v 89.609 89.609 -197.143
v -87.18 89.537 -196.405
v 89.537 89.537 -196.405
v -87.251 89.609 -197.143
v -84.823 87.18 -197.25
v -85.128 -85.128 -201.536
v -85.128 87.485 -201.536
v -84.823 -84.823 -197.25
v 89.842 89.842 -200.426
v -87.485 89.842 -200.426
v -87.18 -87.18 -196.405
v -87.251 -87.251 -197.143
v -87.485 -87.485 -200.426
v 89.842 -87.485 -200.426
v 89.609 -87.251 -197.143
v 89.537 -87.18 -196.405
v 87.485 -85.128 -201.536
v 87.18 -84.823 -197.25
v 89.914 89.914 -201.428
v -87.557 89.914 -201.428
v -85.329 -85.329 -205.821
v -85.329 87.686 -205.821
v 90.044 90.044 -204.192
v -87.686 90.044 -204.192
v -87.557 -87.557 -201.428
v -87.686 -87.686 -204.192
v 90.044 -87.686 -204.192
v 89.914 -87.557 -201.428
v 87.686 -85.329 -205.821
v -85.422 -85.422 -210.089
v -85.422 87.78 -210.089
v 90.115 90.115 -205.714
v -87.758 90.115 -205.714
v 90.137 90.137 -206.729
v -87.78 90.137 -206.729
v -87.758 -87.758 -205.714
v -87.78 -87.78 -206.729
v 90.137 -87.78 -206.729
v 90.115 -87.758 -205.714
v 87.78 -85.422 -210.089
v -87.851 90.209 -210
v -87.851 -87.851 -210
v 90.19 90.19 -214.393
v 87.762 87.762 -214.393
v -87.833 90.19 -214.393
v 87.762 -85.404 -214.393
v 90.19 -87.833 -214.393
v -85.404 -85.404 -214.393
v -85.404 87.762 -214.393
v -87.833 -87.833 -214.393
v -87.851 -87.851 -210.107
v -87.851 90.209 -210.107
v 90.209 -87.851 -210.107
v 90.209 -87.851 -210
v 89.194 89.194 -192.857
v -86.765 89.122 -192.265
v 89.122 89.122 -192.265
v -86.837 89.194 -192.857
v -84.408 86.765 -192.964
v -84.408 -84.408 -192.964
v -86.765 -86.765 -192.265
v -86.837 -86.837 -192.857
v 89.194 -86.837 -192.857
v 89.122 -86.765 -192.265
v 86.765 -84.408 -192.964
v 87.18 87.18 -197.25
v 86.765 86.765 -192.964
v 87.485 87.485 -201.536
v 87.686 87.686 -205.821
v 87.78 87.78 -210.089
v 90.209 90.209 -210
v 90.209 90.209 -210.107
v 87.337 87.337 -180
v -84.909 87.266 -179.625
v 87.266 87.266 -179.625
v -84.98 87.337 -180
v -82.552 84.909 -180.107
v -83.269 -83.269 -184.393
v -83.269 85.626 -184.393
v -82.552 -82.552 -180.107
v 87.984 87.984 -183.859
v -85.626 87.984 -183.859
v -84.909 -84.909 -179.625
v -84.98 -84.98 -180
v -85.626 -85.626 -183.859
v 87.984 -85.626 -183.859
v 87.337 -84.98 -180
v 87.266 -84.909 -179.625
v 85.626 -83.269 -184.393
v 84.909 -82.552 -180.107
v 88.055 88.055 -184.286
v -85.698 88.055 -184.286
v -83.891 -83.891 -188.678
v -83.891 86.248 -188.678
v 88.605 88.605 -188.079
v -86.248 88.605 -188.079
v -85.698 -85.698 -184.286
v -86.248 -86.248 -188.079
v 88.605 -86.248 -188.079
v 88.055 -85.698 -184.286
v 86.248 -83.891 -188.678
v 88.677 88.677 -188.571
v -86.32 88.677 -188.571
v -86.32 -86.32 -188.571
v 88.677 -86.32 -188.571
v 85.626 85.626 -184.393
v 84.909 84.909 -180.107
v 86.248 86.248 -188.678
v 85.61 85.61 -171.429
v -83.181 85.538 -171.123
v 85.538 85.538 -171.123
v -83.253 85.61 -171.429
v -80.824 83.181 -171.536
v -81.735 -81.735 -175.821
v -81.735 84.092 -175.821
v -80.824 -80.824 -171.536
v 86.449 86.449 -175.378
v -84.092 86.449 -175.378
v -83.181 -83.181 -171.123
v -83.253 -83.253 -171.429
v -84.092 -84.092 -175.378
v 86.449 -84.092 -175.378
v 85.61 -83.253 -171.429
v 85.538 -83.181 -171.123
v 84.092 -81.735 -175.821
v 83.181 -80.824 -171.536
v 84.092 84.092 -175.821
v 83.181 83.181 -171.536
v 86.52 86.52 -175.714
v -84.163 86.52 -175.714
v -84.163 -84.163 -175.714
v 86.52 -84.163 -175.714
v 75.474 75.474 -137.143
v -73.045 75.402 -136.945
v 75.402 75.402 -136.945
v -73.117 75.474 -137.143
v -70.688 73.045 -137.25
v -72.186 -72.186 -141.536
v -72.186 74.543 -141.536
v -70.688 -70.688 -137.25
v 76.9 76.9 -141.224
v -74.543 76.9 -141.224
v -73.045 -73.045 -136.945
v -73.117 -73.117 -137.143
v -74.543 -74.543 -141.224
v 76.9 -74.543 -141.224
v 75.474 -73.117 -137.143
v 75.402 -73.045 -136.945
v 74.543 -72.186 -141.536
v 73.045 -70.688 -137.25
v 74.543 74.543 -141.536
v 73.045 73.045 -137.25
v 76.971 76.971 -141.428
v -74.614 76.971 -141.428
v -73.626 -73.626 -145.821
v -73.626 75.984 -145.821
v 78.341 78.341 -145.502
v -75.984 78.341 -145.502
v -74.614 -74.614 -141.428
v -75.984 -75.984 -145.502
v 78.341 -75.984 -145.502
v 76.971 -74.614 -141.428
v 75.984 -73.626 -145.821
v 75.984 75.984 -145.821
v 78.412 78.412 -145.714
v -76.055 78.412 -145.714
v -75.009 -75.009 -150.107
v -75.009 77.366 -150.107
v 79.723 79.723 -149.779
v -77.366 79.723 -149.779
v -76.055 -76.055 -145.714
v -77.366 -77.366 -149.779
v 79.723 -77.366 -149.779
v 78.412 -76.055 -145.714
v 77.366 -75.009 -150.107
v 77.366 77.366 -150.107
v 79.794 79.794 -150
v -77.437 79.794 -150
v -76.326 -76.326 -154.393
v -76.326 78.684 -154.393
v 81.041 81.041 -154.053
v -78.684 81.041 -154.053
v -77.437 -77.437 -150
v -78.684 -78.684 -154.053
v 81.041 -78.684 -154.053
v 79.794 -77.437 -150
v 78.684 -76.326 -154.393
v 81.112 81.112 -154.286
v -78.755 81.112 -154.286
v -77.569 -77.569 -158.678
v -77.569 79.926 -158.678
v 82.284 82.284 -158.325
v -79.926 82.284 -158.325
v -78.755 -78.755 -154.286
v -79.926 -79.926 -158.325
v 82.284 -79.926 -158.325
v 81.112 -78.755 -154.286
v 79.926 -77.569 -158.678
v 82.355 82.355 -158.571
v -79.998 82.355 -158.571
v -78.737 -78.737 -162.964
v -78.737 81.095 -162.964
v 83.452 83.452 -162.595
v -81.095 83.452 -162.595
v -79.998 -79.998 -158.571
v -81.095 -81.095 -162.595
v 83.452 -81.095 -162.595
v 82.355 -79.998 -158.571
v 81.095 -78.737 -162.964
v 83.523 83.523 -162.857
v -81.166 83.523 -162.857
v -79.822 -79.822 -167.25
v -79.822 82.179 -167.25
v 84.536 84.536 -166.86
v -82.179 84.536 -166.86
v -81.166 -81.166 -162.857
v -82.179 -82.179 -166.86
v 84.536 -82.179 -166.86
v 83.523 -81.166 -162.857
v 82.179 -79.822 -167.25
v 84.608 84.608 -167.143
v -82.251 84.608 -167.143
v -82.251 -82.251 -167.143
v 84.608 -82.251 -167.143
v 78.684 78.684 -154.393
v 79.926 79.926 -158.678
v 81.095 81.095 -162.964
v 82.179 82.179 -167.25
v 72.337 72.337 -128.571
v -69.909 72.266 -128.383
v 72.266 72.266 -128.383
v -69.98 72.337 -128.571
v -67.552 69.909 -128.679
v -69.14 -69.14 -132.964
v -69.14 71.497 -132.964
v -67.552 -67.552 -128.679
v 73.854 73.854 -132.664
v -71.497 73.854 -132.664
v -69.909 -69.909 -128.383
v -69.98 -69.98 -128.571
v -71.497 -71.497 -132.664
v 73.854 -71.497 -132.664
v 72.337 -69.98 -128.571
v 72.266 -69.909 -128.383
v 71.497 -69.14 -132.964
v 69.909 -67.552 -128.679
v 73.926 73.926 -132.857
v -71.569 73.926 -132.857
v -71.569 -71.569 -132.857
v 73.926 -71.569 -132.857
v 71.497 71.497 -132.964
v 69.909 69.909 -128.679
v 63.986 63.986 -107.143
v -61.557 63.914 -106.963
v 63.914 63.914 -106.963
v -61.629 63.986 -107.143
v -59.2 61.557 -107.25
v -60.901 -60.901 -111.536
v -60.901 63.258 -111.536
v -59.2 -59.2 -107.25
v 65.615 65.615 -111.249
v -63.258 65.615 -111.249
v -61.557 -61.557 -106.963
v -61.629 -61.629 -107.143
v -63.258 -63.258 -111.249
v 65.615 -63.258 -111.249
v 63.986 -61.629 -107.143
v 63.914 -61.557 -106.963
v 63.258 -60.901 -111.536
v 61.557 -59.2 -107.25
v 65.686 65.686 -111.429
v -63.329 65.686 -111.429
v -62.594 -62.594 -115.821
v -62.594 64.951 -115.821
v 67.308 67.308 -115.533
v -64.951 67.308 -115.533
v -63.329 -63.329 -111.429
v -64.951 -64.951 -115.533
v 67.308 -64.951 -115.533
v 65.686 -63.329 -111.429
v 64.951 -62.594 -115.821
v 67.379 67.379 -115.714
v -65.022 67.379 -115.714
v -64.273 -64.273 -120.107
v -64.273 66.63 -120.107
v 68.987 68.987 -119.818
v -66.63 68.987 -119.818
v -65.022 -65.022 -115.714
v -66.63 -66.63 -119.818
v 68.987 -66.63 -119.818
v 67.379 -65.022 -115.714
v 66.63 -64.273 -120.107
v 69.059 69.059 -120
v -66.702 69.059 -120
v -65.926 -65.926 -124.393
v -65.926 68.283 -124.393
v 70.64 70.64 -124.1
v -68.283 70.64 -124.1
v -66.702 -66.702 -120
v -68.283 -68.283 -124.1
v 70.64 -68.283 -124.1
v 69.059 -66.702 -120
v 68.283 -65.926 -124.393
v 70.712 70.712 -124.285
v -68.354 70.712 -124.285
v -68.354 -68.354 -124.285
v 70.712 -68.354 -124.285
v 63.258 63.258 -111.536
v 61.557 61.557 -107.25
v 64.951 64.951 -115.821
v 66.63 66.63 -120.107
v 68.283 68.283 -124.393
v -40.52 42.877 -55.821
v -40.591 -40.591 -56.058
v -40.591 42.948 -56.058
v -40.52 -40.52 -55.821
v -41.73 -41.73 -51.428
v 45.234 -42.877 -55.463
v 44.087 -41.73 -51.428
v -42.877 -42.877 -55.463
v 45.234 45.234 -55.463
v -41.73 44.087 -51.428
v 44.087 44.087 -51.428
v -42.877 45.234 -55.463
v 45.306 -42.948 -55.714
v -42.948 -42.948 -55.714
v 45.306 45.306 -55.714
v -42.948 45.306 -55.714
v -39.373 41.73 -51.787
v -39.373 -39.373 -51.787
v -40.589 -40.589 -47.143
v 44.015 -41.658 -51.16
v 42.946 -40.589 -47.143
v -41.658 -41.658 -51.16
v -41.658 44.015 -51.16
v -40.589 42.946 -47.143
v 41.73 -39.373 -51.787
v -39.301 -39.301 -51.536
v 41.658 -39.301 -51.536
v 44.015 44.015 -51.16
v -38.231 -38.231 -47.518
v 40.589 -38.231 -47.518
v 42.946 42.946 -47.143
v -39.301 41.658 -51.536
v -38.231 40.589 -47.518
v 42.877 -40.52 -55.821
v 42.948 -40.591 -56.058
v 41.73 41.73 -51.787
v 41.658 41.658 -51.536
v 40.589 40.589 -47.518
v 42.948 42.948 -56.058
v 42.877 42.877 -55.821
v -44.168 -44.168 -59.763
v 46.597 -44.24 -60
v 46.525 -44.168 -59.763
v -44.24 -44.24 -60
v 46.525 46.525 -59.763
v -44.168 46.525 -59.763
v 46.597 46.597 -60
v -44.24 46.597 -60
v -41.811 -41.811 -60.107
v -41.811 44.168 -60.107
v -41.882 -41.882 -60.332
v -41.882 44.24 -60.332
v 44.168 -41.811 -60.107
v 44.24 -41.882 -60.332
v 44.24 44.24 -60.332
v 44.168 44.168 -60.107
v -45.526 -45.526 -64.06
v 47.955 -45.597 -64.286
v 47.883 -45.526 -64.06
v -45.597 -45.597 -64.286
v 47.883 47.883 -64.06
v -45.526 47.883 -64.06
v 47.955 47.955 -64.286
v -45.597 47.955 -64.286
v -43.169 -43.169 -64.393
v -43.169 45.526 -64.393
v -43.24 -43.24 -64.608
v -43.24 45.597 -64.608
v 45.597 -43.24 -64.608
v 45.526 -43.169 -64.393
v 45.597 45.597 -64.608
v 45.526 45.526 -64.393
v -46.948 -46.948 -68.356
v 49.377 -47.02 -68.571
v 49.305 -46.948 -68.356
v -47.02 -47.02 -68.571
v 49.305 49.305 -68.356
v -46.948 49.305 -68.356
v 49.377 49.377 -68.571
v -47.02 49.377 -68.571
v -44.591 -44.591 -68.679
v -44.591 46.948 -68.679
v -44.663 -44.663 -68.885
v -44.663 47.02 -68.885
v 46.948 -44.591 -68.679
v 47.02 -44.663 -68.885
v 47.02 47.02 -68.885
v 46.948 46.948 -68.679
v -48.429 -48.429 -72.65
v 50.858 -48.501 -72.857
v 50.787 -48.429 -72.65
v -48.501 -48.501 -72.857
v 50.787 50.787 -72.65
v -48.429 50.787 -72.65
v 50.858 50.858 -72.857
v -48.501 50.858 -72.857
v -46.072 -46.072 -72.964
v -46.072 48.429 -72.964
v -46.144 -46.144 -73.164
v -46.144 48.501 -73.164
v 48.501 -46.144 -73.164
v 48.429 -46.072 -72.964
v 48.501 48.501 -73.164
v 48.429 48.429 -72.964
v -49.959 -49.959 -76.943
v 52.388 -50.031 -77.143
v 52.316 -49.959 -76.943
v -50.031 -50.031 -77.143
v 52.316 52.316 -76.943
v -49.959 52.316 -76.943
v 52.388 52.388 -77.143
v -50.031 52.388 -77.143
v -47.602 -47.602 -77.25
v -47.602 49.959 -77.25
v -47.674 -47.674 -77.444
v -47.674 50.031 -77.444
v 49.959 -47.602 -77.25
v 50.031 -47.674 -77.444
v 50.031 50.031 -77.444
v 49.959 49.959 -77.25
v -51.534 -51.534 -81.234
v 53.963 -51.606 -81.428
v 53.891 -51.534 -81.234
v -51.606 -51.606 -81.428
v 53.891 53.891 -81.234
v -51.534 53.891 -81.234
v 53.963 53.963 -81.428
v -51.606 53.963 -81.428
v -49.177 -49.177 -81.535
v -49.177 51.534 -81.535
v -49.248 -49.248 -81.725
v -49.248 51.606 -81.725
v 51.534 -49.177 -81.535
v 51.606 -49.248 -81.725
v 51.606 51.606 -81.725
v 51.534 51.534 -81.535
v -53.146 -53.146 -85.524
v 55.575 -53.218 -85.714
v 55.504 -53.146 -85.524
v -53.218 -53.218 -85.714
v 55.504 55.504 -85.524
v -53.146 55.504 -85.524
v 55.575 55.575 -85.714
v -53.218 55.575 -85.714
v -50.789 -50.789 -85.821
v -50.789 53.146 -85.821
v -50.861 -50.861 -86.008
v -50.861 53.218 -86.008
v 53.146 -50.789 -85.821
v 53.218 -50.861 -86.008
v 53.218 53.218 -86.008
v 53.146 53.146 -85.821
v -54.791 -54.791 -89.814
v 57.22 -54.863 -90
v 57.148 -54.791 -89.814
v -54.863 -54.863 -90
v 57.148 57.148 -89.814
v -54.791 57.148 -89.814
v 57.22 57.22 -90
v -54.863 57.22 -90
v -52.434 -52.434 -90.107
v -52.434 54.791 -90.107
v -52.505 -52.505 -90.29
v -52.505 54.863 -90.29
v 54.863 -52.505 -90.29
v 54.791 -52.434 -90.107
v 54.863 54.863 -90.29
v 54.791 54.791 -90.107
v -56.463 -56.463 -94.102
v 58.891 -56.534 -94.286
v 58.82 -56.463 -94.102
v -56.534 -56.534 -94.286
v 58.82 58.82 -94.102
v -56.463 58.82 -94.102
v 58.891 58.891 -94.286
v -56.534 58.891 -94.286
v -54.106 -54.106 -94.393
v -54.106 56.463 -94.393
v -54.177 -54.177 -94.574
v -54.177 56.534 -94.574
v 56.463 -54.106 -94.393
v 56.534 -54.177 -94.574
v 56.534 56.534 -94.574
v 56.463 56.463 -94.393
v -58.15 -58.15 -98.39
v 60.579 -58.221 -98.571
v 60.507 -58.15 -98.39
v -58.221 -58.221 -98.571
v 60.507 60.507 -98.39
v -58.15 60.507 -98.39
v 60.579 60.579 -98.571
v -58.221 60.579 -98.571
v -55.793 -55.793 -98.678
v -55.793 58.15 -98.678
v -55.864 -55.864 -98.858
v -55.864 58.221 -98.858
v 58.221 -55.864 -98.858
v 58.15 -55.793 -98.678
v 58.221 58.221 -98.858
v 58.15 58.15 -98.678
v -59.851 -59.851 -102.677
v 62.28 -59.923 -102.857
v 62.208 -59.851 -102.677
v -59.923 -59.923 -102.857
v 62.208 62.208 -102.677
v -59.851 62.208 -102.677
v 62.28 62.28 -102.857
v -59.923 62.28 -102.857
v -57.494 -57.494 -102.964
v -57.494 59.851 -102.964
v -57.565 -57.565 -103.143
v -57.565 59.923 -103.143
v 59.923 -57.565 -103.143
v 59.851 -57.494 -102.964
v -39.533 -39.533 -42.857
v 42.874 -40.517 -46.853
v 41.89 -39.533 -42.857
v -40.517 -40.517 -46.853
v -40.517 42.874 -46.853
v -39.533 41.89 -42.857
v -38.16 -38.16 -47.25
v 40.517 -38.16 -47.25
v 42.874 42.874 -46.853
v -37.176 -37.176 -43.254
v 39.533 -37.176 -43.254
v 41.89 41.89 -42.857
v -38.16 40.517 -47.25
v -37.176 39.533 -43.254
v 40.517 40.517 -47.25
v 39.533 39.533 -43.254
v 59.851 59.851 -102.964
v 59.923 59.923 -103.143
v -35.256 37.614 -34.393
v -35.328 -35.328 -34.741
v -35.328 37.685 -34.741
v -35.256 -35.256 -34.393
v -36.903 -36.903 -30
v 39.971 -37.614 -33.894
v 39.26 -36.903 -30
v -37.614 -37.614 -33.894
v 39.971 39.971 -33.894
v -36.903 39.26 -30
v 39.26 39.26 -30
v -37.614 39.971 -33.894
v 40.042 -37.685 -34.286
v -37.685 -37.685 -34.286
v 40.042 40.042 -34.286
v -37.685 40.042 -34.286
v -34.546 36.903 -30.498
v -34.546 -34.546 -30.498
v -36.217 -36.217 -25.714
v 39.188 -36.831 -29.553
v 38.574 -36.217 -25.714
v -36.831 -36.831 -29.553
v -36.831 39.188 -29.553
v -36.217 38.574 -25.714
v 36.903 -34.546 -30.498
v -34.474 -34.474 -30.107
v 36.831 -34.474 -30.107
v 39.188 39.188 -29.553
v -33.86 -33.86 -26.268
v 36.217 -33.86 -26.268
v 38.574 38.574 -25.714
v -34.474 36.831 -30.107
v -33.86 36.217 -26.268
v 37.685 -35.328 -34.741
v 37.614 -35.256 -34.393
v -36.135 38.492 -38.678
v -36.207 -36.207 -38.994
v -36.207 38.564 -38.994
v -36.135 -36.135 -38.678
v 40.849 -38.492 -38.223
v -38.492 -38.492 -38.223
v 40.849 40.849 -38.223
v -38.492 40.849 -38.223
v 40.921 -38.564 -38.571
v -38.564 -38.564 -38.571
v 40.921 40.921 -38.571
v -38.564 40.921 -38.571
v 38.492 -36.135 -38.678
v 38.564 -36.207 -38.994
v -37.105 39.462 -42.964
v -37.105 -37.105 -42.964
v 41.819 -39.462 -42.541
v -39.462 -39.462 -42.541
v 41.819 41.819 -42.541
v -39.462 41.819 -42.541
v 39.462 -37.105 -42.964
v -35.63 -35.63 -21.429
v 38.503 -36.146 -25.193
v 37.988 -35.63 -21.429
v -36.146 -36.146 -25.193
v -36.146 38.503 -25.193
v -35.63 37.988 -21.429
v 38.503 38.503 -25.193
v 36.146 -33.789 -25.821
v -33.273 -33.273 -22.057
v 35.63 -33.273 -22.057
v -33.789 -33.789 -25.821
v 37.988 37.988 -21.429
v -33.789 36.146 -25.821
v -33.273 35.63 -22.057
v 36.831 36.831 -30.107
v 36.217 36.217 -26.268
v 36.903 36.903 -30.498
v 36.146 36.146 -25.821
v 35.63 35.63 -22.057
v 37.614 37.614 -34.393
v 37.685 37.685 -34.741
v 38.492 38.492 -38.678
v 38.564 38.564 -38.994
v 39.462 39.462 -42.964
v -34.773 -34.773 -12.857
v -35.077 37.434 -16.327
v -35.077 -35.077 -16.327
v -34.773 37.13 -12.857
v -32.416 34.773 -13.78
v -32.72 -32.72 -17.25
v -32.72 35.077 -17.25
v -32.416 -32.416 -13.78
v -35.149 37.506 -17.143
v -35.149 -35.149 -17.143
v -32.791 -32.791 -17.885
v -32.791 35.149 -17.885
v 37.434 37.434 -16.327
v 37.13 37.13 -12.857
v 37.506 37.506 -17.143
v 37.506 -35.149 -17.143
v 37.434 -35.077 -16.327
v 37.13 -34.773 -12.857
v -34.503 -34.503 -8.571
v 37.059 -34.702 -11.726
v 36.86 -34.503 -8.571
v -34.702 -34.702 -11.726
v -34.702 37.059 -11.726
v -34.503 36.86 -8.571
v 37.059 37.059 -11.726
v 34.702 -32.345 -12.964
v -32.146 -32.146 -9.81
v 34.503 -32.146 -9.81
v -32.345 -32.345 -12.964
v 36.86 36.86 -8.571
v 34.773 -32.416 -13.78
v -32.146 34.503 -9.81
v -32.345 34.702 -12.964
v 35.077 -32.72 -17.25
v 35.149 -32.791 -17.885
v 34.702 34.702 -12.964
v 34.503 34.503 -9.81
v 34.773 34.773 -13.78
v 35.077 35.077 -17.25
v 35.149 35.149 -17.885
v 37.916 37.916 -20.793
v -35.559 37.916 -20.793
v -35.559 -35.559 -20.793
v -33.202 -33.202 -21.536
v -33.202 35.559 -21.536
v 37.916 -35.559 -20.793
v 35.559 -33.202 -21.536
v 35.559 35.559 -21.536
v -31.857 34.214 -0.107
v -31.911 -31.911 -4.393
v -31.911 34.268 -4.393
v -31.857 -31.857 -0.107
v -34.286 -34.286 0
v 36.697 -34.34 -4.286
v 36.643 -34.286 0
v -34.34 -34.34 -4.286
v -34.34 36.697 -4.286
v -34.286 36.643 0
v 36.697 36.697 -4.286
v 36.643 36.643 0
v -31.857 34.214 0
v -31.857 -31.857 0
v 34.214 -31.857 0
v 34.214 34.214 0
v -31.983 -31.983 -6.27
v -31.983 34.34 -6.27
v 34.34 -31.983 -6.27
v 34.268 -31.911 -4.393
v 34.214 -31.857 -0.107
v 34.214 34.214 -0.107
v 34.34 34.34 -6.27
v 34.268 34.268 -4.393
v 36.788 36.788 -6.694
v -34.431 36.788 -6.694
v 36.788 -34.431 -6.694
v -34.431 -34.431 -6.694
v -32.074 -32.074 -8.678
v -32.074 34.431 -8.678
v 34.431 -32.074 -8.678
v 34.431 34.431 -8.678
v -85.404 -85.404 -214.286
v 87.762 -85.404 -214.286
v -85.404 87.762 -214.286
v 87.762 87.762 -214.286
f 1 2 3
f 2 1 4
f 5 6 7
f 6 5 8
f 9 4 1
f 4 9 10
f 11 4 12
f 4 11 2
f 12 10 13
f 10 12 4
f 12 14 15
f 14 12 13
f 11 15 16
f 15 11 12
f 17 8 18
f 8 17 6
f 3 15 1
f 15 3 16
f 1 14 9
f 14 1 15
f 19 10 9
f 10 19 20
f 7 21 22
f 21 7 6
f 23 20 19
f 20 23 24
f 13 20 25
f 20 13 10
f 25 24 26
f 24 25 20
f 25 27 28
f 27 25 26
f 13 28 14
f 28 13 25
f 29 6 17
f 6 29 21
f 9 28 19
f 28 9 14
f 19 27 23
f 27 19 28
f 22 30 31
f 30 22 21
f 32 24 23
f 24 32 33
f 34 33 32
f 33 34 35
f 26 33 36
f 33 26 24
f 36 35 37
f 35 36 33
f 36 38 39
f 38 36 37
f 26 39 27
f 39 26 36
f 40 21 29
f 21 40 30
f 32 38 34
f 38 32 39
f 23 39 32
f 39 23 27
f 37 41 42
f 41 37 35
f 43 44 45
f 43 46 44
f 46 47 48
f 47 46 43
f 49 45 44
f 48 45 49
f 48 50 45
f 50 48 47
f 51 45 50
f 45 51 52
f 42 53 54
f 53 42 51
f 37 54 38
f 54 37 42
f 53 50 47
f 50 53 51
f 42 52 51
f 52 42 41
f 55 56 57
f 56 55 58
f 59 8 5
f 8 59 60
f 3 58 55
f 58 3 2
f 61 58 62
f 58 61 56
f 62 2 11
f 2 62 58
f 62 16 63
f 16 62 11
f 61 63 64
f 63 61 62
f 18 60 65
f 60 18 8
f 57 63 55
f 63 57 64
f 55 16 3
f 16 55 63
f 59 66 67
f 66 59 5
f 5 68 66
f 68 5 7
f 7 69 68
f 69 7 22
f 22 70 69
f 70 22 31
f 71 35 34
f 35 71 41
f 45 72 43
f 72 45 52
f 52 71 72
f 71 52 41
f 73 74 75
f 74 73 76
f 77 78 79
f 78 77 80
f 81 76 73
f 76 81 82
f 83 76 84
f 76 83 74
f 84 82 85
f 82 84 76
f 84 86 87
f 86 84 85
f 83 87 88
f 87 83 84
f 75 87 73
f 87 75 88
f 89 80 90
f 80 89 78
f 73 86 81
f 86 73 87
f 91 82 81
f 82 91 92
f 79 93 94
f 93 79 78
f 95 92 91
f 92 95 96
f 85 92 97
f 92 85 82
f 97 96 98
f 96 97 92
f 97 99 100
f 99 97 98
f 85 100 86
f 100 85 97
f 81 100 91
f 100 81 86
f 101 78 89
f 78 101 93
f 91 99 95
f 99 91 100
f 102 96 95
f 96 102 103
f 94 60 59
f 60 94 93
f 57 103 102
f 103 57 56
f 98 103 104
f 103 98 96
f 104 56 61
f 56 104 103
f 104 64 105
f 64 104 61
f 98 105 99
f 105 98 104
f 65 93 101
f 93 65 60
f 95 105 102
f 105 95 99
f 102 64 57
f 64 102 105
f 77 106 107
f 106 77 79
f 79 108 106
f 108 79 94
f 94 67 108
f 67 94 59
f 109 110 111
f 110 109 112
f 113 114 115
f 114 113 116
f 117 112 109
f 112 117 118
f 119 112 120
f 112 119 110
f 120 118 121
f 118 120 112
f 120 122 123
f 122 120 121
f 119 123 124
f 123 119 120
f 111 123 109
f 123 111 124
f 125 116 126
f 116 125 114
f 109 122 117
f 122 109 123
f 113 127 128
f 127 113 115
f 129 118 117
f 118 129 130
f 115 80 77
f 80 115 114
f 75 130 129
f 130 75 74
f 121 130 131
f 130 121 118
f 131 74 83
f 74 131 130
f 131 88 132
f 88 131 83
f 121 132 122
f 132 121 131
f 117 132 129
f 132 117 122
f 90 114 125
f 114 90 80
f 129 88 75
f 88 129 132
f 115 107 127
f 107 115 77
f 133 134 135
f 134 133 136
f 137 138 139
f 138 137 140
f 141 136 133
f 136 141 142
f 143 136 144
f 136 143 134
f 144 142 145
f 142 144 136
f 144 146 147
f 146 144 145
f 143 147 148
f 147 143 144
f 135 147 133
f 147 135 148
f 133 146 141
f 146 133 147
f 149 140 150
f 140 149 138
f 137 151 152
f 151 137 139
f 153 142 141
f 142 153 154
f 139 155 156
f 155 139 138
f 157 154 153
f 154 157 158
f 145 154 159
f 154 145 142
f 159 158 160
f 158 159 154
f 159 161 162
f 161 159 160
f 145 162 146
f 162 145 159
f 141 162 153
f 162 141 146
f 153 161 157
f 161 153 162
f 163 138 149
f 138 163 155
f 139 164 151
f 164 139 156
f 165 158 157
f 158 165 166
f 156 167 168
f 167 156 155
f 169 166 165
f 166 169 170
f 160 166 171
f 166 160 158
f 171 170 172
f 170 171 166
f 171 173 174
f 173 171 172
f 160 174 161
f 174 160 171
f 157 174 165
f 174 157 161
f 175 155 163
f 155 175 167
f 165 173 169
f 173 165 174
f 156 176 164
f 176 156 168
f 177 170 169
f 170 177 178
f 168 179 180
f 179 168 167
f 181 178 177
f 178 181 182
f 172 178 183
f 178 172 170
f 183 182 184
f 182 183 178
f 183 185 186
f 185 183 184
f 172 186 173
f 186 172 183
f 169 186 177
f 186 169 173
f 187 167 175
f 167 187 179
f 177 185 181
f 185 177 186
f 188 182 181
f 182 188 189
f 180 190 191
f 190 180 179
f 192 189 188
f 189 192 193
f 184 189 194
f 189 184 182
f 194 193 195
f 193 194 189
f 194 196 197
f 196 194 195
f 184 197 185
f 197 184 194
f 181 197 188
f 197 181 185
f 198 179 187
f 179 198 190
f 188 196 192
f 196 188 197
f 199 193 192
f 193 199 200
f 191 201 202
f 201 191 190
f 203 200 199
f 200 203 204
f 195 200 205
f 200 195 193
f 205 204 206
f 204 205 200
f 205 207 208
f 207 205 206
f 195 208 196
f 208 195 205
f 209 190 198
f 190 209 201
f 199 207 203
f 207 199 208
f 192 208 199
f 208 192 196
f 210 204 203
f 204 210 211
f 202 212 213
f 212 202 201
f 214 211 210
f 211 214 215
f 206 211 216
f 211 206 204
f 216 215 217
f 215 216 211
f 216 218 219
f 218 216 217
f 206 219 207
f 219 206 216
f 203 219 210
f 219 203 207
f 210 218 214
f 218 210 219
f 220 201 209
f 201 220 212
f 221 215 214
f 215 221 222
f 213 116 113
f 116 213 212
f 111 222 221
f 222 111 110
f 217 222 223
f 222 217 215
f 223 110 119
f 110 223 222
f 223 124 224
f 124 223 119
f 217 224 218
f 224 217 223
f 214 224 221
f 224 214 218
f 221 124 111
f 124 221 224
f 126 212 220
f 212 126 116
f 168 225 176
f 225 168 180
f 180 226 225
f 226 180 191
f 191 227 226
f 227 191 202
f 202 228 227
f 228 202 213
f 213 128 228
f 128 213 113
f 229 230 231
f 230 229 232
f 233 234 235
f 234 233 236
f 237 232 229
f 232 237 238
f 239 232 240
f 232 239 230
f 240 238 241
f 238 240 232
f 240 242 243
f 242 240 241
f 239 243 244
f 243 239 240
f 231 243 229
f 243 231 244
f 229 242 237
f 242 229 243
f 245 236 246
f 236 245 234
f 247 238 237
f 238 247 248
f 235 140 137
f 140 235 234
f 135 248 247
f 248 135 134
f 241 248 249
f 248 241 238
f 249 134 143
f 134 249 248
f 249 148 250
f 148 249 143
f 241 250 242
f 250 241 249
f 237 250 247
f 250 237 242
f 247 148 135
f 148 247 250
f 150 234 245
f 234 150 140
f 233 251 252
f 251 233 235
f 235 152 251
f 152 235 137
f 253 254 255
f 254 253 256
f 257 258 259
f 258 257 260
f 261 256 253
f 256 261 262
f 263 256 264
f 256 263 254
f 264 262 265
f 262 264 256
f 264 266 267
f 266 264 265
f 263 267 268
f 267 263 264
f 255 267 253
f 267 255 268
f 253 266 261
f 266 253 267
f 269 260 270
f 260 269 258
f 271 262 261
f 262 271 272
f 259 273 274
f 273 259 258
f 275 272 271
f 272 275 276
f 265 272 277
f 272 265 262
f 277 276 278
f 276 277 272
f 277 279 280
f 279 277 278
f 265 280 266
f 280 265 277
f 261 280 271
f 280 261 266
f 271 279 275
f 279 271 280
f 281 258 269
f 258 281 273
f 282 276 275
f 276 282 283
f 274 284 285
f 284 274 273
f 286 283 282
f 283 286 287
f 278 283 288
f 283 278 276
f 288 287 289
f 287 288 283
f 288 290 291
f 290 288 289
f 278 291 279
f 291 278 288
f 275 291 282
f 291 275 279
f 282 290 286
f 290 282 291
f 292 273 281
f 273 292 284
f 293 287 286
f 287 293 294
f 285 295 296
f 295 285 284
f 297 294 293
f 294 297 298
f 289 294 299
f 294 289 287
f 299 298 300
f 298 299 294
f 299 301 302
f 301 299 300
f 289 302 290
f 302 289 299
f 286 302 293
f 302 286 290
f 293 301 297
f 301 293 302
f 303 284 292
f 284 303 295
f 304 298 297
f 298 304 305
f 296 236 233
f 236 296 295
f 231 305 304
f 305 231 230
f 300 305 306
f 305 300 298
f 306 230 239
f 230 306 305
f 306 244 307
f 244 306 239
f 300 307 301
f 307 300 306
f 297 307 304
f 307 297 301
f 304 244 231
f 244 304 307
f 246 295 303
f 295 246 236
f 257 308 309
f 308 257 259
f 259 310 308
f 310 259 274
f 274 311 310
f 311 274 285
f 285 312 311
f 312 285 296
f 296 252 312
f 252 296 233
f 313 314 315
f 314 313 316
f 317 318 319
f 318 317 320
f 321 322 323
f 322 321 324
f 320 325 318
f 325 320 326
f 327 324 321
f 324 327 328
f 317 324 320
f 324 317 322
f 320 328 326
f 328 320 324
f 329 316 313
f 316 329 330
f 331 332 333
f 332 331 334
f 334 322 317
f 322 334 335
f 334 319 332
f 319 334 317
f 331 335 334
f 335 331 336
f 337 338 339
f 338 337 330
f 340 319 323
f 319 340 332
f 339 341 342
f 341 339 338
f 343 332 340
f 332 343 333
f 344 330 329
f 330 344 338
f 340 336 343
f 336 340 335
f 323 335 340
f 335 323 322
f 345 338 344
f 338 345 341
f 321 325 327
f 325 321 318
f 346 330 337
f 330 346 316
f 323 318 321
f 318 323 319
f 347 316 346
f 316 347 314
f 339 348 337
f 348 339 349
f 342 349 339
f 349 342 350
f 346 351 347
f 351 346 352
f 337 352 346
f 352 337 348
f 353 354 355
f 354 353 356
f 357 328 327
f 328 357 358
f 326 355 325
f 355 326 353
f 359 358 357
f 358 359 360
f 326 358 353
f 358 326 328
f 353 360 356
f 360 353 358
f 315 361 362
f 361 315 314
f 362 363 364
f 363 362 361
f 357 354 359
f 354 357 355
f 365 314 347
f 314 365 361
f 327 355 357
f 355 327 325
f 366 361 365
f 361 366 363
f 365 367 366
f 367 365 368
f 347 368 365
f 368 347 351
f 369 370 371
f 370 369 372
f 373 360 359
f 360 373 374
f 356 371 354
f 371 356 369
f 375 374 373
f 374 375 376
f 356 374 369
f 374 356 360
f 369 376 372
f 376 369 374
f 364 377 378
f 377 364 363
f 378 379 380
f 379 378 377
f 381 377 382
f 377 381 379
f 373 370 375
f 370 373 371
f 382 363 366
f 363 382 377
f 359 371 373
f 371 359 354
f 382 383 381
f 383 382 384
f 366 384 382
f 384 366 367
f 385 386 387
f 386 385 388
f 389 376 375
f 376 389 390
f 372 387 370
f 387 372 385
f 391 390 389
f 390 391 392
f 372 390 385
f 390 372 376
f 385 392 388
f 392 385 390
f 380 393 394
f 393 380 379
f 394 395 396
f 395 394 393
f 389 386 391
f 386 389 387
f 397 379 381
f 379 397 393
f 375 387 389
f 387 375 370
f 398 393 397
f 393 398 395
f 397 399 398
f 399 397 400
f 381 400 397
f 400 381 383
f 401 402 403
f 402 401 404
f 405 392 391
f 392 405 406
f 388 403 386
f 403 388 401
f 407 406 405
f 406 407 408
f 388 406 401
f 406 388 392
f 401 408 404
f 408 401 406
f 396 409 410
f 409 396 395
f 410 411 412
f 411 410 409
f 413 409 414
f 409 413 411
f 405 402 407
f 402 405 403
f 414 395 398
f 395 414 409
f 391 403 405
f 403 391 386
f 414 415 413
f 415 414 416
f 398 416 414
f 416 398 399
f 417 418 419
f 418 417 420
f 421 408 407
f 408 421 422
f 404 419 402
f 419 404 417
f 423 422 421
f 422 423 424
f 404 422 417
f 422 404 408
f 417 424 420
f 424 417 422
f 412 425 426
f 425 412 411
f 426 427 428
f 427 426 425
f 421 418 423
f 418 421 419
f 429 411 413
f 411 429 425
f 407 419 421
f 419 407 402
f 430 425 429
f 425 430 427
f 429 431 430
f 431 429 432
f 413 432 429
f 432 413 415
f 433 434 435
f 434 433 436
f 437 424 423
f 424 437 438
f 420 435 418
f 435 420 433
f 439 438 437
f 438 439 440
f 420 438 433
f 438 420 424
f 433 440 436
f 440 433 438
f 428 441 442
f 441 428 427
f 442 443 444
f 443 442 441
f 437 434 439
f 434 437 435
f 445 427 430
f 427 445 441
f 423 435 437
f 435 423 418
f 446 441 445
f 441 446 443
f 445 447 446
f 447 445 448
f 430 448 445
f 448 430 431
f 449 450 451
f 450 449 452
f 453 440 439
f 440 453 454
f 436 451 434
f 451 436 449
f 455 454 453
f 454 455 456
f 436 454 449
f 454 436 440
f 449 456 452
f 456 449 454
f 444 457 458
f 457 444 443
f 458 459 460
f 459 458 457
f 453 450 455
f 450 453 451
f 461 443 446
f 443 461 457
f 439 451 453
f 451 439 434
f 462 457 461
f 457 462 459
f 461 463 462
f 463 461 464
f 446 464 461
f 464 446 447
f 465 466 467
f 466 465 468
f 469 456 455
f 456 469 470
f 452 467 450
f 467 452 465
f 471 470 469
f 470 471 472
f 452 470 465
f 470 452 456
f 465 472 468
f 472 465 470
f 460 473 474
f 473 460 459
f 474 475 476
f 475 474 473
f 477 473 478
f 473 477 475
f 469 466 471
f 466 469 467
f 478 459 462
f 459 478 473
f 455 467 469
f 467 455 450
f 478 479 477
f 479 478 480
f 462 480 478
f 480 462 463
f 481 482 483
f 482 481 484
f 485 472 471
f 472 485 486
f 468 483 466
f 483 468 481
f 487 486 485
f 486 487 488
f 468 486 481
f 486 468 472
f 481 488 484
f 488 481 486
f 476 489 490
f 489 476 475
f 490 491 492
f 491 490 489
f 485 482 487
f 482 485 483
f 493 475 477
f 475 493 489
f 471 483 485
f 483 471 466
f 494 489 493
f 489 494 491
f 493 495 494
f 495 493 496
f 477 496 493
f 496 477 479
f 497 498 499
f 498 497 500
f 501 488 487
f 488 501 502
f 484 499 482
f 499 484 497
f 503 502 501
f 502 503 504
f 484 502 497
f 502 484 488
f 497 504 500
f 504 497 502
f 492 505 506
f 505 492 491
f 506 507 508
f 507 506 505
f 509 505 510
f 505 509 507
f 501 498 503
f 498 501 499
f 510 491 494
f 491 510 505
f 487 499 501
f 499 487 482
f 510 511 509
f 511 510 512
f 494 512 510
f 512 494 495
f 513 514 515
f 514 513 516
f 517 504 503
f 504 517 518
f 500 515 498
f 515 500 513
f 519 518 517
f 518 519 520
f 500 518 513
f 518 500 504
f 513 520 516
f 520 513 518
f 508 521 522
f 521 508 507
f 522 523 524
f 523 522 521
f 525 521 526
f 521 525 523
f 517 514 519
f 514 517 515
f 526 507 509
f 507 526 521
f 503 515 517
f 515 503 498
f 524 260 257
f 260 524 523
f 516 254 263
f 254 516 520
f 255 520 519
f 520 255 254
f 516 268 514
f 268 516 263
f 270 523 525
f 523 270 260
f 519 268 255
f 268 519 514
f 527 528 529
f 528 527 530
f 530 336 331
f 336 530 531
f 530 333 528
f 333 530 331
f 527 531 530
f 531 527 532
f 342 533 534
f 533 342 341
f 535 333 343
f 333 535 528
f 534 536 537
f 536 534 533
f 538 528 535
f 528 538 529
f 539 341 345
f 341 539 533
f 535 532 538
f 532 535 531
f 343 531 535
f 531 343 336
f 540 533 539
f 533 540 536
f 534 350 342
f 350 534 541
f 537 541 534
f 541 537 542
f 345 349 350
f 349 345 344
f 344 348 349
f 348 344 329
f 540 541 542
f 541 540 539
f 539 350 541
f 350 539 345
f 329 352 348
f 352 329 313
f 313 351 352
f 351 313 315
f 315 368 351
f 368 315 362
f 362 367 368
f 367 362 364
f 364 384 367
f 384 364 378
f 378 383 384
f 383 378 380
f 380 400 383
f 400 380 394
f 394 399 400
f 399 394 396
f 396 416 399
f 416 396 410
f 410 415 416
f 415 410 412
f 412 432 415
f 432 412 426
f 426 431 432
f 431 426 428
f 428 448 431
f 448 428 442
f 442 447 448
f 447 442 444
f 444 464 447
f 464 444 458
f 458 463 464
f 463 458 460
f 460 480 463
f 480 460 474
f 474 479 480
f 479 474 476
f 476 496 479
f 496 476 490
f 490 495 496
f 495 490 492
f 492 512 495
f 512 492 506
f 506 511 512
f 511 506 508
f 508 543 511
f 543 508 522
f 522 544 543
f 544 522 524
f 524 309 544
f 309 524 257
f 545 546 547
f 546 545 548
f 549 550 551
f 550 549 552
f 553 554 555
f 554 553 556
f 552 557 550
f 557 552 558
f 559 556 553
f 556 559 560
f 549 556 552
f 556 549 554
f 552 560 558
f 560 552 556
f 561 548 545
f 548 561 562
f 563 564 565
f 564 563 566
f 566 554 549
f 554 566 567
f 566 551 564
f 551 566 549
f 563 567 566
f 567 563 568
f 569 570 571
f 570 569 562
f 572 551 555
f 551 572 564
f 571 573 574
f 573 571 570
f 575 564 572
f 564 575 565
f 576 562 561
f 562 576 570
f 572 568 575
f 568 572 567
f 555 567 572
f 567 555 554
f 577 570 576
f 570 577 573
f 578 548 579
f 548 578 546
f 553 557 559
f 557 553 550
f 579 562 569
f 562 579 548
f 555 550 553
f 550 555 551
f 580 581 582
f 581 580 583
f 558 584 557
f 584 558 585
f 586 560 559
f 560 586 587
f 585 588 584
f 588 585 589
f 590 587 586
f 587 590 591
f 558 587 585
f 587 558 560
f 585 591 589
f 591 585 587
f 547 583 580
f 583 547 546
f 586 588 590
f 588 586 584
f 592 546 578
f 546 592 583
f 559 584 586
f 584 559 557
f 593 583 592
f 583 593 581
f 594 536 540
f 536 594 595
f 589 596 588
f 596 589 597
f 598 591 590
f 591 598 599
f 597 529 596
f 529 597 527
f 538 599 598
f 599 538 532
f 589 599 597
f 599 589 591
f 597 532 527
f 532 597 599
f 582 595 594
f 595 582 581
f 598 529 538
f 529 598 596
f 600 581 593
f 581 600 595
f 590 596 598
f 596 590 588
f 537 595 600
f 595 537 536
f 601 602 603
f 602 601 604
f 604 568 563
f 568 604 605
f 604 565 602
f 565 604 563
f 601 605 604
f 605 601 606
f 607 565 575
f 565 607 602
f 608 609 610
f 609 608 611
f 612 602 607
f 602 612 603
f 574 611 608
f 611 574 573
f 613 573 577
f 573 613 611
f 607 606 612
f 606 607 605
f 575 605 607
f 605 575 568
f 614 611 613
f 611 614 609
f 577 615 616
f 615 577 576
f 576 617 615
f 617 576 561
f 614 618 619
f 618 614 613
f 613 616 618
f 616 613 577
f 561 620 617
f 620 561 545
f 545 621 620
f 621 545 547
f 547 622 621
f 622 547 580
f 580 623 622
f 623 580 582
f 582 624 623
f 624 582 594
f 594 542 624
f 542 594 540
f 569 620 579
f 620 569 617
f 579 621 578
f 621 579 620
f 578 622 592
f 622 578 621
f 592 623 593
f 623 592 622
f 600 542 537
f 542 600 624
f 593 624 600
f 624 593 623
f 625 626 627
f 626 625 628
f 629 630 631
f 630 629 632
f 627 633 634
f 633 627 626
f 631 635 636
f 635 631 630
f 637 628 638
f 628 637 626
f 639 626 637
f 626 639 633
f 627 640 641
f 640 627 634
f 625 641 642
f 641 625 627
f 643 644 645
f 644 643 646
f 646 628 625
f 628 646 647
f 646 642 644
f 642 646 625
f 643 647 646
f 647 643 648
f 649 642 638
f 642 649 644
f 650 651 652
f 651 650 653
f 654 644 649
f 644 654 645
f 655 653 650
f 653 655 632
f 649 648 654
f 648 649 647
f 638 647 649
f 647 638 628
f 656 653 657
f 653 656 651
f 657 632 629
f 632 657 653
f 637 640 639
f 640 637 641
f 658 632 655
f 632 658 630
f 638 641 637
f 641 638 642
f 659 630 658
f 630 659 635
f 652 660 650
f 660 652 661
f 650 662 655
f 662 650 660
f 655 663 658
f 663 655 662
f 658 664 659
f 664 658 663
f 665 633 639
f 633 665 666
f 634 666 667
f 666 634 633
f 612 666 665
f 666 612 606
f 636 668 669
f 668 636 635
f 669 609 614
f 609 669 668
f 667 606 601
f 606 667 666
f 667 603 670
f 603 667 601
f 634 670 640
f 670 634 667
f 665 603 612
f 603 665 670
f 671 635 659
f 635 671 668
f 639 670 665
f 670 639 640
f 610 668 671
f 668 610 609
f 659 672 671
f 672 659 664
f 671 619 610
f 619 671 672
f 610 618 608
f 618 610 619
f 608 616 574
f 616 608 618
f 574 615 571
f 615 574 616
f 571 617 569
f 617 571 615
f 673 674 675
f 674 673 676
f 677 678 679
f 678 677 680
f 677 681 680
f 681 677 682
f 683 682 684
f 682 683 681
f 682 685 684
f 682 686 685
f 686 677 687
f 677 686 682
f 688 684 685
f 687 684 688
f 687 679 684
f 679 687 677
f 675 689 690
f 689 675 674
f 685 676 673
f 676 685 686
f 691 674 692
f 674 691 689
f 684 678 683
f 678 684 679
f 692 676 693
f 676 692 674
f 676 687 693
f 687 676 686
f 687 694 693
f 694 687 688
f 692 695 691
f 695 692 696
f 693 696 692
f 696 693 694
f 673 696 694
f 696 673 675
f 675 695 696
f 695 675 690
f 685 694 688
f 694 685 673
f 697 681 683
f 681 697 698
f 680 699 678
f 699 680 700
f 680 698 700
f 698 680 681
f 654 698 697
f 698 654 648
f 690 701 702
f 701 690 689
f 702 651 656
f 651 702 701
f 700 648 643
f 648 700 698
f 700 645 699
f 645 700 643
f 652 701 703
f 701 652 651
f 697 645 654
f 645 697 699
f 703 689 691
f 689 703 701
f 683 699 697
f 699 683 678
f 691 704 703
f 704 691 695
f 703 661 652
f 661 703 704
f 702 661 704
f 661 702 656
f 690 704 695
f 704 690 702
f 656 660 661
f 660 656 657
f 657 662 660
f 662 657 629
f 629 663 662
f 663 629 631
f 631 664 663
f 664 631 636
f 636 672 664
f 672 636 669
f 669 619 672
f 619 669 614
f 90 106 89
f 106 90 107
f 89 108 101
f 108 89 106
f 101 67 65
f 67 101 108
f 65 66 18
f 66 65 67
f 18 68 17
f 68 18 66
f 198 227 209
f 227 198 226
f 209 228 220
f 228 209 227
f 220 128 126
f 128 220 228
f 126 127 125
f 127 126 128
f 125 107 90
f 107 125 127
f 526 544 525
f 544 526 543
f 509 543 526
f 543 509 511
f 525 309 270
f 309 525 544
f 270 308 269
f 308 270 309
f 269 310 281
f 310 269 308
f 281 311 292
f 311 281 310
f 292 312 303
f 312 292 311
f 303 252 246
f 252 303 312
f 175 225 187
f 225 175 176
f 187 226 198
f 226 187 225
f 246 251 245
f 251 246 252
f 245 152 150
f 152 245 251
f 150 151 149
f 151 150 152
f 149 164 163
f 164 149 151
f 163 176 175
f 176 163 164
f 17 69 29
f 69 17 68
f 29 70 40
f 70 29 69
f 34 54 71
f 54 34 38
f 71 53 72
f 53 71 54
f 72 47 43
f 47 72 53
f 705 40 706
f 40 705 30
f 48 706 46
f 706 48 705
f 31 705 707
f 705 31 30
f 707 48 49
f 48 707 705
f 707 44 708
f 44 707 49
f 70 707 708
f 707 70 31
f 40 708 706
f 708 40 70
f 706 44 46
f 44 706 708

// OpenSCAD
scale([1/14,1/14,1.5/14])
rotate([0,90,0])

minkowski(){
cube([1,33,33]);

difference(){

difference(){
rotate([0,90,0])rotate([0,0,45])
cylinder(d1=2000,d2=4000,h=2000,$fn=4);
translate([0,-855,-2000])scale([200,375,1])curva(4000);
mirror([0,1,0])
translate([0,-855,-2000])scale([200,375,1])curva(4000);
rotate([90,0,0]){
translate([0,-855,-2000])scale([200,375,1])curva(4000);
mirror([0,1,0])
translate([0,-855,-2000])scale([200,375,1])curva(4000);
}
}

difference(){
rotate([0,90,0])rotate([0,0,45])
cylinder(d1=2000,d2=4000,h=2000,$fn=4);
translate([0,-854,-2000])scale([200,375,1])curva(4000);
mirror([0,1,0])
translate([0,-854,-2000])scale([200,375,1])curva(4000);
rotate([90,0,0]){
translate([0,-854,-2000])scale([200,375,1])curva(4000);
mirror([0,1,0])
translate([0,-854,-2000])scale([200,375,1])curva(4000);
}
}

}
}

module curva(e){
linear_extrude(e)
polygon([[0,1.0000],[0.2000,0.9980],[0.4000,0.9919],
[0.6000,0.9818],[0.8000,0.9678],[1.0000,0.9498],
[1.2000,0.9279],[1.4000,0.9023],[1.6000,0.8731],
[1.8000,0.8403],[2.0000,0.8041],[2.2000,0.7647],
[2.4000,0.7221],[2.6000,0.6766],[2.8000,0.6284],
[3.0000,0.5777],[3.2000,0.5246],[3.4000,0.4693],
[3.6000,0.4122],[3.8000,0.3534],[4.0000,0.2932],
[4.2000,0.2318],[4.4000,0.1694],[4.6000,0.1064],
[4.8000,0.0429],[5.0000,-0.0208],[5.2000,-0.0843],
[5.4000,-0.1475],[5.6000,-0.2102],[5.8000,-0.2719],
[6.0000,-0.3326],[6.2000,-0.3919],[6.4000,-0.4497],
[6.6000,-0.5056],[6.8000,-0.5594],[7.0000,-0.6110],
[7.2000,-0.6602],[7.4000,-0.7066],[7.6000,-0.7502],
[7.8000,-0.7907],[8.0000,-0.8281],[8.2000,-0.8621],
[8.4000,-0.8926],[8.6000,-0.9194],[8.8000,-0.9426],
[9.0000,-0.9619],[9.2000,-0.9774],[9.4000,-0.9888],
[9.6000,-0.9963],[9.8000,-0.9998],[10.0000,-0.9991],
[10.0000,-1.9991],[9.8000,-1.9998],[9.6000,-1.9963],
[9.4000,-1.9888],[9.2000,-1.9774],[9.0000,-1.9619],
[8.8000,-1.9426],[8.6000,-1.9194],[8.4000,-1.8926],
[8.2000,-1.8621],[8.0000,-1.8281],[7.8000,-1.7907],
[7.6000,-1.7502],[7.4000,-1.7066],[7.2000,-1.6602],
[7.0000,-1.6110],[6.8000,-1.5594],[6.6000,-1.5056],
[6.4000,-1.4497],[6.2000,-1.3919],[6.0000,-1.3326],
[5.8000,-1.2719],[5.6000,-1.2102],[5.4000,-1.1475],
[5.2000,-1.0843],[5.0000,-1.0208],[4.8000,.0429-1],
[4.6000,.1064-1],[4.4000,.1694-1],[4.2000,.2318-1],
[4.0000,.2932-1],[3.8000,.3534-1],[3.6000,.4122-1],
[3.4000,.4693-1],[3.2000,.5246-1],[3.0000,.5777-1],
[2.8000,.6284-1],[2.6000,.6766-1],[2.4000,.7221-1],
[2.2000,.7647-1],[2.0000,.8041-1],[1.8000,.8403-1],
[1.6000,.8731-1],[1.4000,.9023-1],[1.2000,.9279-1],
[1.0000,.9498-1],[0.8000,.9678-1],[0.6000,.9818-1],
[0.4000,.9919-1],[0.2000,.9980-1],[0,.0000]
]);
}
